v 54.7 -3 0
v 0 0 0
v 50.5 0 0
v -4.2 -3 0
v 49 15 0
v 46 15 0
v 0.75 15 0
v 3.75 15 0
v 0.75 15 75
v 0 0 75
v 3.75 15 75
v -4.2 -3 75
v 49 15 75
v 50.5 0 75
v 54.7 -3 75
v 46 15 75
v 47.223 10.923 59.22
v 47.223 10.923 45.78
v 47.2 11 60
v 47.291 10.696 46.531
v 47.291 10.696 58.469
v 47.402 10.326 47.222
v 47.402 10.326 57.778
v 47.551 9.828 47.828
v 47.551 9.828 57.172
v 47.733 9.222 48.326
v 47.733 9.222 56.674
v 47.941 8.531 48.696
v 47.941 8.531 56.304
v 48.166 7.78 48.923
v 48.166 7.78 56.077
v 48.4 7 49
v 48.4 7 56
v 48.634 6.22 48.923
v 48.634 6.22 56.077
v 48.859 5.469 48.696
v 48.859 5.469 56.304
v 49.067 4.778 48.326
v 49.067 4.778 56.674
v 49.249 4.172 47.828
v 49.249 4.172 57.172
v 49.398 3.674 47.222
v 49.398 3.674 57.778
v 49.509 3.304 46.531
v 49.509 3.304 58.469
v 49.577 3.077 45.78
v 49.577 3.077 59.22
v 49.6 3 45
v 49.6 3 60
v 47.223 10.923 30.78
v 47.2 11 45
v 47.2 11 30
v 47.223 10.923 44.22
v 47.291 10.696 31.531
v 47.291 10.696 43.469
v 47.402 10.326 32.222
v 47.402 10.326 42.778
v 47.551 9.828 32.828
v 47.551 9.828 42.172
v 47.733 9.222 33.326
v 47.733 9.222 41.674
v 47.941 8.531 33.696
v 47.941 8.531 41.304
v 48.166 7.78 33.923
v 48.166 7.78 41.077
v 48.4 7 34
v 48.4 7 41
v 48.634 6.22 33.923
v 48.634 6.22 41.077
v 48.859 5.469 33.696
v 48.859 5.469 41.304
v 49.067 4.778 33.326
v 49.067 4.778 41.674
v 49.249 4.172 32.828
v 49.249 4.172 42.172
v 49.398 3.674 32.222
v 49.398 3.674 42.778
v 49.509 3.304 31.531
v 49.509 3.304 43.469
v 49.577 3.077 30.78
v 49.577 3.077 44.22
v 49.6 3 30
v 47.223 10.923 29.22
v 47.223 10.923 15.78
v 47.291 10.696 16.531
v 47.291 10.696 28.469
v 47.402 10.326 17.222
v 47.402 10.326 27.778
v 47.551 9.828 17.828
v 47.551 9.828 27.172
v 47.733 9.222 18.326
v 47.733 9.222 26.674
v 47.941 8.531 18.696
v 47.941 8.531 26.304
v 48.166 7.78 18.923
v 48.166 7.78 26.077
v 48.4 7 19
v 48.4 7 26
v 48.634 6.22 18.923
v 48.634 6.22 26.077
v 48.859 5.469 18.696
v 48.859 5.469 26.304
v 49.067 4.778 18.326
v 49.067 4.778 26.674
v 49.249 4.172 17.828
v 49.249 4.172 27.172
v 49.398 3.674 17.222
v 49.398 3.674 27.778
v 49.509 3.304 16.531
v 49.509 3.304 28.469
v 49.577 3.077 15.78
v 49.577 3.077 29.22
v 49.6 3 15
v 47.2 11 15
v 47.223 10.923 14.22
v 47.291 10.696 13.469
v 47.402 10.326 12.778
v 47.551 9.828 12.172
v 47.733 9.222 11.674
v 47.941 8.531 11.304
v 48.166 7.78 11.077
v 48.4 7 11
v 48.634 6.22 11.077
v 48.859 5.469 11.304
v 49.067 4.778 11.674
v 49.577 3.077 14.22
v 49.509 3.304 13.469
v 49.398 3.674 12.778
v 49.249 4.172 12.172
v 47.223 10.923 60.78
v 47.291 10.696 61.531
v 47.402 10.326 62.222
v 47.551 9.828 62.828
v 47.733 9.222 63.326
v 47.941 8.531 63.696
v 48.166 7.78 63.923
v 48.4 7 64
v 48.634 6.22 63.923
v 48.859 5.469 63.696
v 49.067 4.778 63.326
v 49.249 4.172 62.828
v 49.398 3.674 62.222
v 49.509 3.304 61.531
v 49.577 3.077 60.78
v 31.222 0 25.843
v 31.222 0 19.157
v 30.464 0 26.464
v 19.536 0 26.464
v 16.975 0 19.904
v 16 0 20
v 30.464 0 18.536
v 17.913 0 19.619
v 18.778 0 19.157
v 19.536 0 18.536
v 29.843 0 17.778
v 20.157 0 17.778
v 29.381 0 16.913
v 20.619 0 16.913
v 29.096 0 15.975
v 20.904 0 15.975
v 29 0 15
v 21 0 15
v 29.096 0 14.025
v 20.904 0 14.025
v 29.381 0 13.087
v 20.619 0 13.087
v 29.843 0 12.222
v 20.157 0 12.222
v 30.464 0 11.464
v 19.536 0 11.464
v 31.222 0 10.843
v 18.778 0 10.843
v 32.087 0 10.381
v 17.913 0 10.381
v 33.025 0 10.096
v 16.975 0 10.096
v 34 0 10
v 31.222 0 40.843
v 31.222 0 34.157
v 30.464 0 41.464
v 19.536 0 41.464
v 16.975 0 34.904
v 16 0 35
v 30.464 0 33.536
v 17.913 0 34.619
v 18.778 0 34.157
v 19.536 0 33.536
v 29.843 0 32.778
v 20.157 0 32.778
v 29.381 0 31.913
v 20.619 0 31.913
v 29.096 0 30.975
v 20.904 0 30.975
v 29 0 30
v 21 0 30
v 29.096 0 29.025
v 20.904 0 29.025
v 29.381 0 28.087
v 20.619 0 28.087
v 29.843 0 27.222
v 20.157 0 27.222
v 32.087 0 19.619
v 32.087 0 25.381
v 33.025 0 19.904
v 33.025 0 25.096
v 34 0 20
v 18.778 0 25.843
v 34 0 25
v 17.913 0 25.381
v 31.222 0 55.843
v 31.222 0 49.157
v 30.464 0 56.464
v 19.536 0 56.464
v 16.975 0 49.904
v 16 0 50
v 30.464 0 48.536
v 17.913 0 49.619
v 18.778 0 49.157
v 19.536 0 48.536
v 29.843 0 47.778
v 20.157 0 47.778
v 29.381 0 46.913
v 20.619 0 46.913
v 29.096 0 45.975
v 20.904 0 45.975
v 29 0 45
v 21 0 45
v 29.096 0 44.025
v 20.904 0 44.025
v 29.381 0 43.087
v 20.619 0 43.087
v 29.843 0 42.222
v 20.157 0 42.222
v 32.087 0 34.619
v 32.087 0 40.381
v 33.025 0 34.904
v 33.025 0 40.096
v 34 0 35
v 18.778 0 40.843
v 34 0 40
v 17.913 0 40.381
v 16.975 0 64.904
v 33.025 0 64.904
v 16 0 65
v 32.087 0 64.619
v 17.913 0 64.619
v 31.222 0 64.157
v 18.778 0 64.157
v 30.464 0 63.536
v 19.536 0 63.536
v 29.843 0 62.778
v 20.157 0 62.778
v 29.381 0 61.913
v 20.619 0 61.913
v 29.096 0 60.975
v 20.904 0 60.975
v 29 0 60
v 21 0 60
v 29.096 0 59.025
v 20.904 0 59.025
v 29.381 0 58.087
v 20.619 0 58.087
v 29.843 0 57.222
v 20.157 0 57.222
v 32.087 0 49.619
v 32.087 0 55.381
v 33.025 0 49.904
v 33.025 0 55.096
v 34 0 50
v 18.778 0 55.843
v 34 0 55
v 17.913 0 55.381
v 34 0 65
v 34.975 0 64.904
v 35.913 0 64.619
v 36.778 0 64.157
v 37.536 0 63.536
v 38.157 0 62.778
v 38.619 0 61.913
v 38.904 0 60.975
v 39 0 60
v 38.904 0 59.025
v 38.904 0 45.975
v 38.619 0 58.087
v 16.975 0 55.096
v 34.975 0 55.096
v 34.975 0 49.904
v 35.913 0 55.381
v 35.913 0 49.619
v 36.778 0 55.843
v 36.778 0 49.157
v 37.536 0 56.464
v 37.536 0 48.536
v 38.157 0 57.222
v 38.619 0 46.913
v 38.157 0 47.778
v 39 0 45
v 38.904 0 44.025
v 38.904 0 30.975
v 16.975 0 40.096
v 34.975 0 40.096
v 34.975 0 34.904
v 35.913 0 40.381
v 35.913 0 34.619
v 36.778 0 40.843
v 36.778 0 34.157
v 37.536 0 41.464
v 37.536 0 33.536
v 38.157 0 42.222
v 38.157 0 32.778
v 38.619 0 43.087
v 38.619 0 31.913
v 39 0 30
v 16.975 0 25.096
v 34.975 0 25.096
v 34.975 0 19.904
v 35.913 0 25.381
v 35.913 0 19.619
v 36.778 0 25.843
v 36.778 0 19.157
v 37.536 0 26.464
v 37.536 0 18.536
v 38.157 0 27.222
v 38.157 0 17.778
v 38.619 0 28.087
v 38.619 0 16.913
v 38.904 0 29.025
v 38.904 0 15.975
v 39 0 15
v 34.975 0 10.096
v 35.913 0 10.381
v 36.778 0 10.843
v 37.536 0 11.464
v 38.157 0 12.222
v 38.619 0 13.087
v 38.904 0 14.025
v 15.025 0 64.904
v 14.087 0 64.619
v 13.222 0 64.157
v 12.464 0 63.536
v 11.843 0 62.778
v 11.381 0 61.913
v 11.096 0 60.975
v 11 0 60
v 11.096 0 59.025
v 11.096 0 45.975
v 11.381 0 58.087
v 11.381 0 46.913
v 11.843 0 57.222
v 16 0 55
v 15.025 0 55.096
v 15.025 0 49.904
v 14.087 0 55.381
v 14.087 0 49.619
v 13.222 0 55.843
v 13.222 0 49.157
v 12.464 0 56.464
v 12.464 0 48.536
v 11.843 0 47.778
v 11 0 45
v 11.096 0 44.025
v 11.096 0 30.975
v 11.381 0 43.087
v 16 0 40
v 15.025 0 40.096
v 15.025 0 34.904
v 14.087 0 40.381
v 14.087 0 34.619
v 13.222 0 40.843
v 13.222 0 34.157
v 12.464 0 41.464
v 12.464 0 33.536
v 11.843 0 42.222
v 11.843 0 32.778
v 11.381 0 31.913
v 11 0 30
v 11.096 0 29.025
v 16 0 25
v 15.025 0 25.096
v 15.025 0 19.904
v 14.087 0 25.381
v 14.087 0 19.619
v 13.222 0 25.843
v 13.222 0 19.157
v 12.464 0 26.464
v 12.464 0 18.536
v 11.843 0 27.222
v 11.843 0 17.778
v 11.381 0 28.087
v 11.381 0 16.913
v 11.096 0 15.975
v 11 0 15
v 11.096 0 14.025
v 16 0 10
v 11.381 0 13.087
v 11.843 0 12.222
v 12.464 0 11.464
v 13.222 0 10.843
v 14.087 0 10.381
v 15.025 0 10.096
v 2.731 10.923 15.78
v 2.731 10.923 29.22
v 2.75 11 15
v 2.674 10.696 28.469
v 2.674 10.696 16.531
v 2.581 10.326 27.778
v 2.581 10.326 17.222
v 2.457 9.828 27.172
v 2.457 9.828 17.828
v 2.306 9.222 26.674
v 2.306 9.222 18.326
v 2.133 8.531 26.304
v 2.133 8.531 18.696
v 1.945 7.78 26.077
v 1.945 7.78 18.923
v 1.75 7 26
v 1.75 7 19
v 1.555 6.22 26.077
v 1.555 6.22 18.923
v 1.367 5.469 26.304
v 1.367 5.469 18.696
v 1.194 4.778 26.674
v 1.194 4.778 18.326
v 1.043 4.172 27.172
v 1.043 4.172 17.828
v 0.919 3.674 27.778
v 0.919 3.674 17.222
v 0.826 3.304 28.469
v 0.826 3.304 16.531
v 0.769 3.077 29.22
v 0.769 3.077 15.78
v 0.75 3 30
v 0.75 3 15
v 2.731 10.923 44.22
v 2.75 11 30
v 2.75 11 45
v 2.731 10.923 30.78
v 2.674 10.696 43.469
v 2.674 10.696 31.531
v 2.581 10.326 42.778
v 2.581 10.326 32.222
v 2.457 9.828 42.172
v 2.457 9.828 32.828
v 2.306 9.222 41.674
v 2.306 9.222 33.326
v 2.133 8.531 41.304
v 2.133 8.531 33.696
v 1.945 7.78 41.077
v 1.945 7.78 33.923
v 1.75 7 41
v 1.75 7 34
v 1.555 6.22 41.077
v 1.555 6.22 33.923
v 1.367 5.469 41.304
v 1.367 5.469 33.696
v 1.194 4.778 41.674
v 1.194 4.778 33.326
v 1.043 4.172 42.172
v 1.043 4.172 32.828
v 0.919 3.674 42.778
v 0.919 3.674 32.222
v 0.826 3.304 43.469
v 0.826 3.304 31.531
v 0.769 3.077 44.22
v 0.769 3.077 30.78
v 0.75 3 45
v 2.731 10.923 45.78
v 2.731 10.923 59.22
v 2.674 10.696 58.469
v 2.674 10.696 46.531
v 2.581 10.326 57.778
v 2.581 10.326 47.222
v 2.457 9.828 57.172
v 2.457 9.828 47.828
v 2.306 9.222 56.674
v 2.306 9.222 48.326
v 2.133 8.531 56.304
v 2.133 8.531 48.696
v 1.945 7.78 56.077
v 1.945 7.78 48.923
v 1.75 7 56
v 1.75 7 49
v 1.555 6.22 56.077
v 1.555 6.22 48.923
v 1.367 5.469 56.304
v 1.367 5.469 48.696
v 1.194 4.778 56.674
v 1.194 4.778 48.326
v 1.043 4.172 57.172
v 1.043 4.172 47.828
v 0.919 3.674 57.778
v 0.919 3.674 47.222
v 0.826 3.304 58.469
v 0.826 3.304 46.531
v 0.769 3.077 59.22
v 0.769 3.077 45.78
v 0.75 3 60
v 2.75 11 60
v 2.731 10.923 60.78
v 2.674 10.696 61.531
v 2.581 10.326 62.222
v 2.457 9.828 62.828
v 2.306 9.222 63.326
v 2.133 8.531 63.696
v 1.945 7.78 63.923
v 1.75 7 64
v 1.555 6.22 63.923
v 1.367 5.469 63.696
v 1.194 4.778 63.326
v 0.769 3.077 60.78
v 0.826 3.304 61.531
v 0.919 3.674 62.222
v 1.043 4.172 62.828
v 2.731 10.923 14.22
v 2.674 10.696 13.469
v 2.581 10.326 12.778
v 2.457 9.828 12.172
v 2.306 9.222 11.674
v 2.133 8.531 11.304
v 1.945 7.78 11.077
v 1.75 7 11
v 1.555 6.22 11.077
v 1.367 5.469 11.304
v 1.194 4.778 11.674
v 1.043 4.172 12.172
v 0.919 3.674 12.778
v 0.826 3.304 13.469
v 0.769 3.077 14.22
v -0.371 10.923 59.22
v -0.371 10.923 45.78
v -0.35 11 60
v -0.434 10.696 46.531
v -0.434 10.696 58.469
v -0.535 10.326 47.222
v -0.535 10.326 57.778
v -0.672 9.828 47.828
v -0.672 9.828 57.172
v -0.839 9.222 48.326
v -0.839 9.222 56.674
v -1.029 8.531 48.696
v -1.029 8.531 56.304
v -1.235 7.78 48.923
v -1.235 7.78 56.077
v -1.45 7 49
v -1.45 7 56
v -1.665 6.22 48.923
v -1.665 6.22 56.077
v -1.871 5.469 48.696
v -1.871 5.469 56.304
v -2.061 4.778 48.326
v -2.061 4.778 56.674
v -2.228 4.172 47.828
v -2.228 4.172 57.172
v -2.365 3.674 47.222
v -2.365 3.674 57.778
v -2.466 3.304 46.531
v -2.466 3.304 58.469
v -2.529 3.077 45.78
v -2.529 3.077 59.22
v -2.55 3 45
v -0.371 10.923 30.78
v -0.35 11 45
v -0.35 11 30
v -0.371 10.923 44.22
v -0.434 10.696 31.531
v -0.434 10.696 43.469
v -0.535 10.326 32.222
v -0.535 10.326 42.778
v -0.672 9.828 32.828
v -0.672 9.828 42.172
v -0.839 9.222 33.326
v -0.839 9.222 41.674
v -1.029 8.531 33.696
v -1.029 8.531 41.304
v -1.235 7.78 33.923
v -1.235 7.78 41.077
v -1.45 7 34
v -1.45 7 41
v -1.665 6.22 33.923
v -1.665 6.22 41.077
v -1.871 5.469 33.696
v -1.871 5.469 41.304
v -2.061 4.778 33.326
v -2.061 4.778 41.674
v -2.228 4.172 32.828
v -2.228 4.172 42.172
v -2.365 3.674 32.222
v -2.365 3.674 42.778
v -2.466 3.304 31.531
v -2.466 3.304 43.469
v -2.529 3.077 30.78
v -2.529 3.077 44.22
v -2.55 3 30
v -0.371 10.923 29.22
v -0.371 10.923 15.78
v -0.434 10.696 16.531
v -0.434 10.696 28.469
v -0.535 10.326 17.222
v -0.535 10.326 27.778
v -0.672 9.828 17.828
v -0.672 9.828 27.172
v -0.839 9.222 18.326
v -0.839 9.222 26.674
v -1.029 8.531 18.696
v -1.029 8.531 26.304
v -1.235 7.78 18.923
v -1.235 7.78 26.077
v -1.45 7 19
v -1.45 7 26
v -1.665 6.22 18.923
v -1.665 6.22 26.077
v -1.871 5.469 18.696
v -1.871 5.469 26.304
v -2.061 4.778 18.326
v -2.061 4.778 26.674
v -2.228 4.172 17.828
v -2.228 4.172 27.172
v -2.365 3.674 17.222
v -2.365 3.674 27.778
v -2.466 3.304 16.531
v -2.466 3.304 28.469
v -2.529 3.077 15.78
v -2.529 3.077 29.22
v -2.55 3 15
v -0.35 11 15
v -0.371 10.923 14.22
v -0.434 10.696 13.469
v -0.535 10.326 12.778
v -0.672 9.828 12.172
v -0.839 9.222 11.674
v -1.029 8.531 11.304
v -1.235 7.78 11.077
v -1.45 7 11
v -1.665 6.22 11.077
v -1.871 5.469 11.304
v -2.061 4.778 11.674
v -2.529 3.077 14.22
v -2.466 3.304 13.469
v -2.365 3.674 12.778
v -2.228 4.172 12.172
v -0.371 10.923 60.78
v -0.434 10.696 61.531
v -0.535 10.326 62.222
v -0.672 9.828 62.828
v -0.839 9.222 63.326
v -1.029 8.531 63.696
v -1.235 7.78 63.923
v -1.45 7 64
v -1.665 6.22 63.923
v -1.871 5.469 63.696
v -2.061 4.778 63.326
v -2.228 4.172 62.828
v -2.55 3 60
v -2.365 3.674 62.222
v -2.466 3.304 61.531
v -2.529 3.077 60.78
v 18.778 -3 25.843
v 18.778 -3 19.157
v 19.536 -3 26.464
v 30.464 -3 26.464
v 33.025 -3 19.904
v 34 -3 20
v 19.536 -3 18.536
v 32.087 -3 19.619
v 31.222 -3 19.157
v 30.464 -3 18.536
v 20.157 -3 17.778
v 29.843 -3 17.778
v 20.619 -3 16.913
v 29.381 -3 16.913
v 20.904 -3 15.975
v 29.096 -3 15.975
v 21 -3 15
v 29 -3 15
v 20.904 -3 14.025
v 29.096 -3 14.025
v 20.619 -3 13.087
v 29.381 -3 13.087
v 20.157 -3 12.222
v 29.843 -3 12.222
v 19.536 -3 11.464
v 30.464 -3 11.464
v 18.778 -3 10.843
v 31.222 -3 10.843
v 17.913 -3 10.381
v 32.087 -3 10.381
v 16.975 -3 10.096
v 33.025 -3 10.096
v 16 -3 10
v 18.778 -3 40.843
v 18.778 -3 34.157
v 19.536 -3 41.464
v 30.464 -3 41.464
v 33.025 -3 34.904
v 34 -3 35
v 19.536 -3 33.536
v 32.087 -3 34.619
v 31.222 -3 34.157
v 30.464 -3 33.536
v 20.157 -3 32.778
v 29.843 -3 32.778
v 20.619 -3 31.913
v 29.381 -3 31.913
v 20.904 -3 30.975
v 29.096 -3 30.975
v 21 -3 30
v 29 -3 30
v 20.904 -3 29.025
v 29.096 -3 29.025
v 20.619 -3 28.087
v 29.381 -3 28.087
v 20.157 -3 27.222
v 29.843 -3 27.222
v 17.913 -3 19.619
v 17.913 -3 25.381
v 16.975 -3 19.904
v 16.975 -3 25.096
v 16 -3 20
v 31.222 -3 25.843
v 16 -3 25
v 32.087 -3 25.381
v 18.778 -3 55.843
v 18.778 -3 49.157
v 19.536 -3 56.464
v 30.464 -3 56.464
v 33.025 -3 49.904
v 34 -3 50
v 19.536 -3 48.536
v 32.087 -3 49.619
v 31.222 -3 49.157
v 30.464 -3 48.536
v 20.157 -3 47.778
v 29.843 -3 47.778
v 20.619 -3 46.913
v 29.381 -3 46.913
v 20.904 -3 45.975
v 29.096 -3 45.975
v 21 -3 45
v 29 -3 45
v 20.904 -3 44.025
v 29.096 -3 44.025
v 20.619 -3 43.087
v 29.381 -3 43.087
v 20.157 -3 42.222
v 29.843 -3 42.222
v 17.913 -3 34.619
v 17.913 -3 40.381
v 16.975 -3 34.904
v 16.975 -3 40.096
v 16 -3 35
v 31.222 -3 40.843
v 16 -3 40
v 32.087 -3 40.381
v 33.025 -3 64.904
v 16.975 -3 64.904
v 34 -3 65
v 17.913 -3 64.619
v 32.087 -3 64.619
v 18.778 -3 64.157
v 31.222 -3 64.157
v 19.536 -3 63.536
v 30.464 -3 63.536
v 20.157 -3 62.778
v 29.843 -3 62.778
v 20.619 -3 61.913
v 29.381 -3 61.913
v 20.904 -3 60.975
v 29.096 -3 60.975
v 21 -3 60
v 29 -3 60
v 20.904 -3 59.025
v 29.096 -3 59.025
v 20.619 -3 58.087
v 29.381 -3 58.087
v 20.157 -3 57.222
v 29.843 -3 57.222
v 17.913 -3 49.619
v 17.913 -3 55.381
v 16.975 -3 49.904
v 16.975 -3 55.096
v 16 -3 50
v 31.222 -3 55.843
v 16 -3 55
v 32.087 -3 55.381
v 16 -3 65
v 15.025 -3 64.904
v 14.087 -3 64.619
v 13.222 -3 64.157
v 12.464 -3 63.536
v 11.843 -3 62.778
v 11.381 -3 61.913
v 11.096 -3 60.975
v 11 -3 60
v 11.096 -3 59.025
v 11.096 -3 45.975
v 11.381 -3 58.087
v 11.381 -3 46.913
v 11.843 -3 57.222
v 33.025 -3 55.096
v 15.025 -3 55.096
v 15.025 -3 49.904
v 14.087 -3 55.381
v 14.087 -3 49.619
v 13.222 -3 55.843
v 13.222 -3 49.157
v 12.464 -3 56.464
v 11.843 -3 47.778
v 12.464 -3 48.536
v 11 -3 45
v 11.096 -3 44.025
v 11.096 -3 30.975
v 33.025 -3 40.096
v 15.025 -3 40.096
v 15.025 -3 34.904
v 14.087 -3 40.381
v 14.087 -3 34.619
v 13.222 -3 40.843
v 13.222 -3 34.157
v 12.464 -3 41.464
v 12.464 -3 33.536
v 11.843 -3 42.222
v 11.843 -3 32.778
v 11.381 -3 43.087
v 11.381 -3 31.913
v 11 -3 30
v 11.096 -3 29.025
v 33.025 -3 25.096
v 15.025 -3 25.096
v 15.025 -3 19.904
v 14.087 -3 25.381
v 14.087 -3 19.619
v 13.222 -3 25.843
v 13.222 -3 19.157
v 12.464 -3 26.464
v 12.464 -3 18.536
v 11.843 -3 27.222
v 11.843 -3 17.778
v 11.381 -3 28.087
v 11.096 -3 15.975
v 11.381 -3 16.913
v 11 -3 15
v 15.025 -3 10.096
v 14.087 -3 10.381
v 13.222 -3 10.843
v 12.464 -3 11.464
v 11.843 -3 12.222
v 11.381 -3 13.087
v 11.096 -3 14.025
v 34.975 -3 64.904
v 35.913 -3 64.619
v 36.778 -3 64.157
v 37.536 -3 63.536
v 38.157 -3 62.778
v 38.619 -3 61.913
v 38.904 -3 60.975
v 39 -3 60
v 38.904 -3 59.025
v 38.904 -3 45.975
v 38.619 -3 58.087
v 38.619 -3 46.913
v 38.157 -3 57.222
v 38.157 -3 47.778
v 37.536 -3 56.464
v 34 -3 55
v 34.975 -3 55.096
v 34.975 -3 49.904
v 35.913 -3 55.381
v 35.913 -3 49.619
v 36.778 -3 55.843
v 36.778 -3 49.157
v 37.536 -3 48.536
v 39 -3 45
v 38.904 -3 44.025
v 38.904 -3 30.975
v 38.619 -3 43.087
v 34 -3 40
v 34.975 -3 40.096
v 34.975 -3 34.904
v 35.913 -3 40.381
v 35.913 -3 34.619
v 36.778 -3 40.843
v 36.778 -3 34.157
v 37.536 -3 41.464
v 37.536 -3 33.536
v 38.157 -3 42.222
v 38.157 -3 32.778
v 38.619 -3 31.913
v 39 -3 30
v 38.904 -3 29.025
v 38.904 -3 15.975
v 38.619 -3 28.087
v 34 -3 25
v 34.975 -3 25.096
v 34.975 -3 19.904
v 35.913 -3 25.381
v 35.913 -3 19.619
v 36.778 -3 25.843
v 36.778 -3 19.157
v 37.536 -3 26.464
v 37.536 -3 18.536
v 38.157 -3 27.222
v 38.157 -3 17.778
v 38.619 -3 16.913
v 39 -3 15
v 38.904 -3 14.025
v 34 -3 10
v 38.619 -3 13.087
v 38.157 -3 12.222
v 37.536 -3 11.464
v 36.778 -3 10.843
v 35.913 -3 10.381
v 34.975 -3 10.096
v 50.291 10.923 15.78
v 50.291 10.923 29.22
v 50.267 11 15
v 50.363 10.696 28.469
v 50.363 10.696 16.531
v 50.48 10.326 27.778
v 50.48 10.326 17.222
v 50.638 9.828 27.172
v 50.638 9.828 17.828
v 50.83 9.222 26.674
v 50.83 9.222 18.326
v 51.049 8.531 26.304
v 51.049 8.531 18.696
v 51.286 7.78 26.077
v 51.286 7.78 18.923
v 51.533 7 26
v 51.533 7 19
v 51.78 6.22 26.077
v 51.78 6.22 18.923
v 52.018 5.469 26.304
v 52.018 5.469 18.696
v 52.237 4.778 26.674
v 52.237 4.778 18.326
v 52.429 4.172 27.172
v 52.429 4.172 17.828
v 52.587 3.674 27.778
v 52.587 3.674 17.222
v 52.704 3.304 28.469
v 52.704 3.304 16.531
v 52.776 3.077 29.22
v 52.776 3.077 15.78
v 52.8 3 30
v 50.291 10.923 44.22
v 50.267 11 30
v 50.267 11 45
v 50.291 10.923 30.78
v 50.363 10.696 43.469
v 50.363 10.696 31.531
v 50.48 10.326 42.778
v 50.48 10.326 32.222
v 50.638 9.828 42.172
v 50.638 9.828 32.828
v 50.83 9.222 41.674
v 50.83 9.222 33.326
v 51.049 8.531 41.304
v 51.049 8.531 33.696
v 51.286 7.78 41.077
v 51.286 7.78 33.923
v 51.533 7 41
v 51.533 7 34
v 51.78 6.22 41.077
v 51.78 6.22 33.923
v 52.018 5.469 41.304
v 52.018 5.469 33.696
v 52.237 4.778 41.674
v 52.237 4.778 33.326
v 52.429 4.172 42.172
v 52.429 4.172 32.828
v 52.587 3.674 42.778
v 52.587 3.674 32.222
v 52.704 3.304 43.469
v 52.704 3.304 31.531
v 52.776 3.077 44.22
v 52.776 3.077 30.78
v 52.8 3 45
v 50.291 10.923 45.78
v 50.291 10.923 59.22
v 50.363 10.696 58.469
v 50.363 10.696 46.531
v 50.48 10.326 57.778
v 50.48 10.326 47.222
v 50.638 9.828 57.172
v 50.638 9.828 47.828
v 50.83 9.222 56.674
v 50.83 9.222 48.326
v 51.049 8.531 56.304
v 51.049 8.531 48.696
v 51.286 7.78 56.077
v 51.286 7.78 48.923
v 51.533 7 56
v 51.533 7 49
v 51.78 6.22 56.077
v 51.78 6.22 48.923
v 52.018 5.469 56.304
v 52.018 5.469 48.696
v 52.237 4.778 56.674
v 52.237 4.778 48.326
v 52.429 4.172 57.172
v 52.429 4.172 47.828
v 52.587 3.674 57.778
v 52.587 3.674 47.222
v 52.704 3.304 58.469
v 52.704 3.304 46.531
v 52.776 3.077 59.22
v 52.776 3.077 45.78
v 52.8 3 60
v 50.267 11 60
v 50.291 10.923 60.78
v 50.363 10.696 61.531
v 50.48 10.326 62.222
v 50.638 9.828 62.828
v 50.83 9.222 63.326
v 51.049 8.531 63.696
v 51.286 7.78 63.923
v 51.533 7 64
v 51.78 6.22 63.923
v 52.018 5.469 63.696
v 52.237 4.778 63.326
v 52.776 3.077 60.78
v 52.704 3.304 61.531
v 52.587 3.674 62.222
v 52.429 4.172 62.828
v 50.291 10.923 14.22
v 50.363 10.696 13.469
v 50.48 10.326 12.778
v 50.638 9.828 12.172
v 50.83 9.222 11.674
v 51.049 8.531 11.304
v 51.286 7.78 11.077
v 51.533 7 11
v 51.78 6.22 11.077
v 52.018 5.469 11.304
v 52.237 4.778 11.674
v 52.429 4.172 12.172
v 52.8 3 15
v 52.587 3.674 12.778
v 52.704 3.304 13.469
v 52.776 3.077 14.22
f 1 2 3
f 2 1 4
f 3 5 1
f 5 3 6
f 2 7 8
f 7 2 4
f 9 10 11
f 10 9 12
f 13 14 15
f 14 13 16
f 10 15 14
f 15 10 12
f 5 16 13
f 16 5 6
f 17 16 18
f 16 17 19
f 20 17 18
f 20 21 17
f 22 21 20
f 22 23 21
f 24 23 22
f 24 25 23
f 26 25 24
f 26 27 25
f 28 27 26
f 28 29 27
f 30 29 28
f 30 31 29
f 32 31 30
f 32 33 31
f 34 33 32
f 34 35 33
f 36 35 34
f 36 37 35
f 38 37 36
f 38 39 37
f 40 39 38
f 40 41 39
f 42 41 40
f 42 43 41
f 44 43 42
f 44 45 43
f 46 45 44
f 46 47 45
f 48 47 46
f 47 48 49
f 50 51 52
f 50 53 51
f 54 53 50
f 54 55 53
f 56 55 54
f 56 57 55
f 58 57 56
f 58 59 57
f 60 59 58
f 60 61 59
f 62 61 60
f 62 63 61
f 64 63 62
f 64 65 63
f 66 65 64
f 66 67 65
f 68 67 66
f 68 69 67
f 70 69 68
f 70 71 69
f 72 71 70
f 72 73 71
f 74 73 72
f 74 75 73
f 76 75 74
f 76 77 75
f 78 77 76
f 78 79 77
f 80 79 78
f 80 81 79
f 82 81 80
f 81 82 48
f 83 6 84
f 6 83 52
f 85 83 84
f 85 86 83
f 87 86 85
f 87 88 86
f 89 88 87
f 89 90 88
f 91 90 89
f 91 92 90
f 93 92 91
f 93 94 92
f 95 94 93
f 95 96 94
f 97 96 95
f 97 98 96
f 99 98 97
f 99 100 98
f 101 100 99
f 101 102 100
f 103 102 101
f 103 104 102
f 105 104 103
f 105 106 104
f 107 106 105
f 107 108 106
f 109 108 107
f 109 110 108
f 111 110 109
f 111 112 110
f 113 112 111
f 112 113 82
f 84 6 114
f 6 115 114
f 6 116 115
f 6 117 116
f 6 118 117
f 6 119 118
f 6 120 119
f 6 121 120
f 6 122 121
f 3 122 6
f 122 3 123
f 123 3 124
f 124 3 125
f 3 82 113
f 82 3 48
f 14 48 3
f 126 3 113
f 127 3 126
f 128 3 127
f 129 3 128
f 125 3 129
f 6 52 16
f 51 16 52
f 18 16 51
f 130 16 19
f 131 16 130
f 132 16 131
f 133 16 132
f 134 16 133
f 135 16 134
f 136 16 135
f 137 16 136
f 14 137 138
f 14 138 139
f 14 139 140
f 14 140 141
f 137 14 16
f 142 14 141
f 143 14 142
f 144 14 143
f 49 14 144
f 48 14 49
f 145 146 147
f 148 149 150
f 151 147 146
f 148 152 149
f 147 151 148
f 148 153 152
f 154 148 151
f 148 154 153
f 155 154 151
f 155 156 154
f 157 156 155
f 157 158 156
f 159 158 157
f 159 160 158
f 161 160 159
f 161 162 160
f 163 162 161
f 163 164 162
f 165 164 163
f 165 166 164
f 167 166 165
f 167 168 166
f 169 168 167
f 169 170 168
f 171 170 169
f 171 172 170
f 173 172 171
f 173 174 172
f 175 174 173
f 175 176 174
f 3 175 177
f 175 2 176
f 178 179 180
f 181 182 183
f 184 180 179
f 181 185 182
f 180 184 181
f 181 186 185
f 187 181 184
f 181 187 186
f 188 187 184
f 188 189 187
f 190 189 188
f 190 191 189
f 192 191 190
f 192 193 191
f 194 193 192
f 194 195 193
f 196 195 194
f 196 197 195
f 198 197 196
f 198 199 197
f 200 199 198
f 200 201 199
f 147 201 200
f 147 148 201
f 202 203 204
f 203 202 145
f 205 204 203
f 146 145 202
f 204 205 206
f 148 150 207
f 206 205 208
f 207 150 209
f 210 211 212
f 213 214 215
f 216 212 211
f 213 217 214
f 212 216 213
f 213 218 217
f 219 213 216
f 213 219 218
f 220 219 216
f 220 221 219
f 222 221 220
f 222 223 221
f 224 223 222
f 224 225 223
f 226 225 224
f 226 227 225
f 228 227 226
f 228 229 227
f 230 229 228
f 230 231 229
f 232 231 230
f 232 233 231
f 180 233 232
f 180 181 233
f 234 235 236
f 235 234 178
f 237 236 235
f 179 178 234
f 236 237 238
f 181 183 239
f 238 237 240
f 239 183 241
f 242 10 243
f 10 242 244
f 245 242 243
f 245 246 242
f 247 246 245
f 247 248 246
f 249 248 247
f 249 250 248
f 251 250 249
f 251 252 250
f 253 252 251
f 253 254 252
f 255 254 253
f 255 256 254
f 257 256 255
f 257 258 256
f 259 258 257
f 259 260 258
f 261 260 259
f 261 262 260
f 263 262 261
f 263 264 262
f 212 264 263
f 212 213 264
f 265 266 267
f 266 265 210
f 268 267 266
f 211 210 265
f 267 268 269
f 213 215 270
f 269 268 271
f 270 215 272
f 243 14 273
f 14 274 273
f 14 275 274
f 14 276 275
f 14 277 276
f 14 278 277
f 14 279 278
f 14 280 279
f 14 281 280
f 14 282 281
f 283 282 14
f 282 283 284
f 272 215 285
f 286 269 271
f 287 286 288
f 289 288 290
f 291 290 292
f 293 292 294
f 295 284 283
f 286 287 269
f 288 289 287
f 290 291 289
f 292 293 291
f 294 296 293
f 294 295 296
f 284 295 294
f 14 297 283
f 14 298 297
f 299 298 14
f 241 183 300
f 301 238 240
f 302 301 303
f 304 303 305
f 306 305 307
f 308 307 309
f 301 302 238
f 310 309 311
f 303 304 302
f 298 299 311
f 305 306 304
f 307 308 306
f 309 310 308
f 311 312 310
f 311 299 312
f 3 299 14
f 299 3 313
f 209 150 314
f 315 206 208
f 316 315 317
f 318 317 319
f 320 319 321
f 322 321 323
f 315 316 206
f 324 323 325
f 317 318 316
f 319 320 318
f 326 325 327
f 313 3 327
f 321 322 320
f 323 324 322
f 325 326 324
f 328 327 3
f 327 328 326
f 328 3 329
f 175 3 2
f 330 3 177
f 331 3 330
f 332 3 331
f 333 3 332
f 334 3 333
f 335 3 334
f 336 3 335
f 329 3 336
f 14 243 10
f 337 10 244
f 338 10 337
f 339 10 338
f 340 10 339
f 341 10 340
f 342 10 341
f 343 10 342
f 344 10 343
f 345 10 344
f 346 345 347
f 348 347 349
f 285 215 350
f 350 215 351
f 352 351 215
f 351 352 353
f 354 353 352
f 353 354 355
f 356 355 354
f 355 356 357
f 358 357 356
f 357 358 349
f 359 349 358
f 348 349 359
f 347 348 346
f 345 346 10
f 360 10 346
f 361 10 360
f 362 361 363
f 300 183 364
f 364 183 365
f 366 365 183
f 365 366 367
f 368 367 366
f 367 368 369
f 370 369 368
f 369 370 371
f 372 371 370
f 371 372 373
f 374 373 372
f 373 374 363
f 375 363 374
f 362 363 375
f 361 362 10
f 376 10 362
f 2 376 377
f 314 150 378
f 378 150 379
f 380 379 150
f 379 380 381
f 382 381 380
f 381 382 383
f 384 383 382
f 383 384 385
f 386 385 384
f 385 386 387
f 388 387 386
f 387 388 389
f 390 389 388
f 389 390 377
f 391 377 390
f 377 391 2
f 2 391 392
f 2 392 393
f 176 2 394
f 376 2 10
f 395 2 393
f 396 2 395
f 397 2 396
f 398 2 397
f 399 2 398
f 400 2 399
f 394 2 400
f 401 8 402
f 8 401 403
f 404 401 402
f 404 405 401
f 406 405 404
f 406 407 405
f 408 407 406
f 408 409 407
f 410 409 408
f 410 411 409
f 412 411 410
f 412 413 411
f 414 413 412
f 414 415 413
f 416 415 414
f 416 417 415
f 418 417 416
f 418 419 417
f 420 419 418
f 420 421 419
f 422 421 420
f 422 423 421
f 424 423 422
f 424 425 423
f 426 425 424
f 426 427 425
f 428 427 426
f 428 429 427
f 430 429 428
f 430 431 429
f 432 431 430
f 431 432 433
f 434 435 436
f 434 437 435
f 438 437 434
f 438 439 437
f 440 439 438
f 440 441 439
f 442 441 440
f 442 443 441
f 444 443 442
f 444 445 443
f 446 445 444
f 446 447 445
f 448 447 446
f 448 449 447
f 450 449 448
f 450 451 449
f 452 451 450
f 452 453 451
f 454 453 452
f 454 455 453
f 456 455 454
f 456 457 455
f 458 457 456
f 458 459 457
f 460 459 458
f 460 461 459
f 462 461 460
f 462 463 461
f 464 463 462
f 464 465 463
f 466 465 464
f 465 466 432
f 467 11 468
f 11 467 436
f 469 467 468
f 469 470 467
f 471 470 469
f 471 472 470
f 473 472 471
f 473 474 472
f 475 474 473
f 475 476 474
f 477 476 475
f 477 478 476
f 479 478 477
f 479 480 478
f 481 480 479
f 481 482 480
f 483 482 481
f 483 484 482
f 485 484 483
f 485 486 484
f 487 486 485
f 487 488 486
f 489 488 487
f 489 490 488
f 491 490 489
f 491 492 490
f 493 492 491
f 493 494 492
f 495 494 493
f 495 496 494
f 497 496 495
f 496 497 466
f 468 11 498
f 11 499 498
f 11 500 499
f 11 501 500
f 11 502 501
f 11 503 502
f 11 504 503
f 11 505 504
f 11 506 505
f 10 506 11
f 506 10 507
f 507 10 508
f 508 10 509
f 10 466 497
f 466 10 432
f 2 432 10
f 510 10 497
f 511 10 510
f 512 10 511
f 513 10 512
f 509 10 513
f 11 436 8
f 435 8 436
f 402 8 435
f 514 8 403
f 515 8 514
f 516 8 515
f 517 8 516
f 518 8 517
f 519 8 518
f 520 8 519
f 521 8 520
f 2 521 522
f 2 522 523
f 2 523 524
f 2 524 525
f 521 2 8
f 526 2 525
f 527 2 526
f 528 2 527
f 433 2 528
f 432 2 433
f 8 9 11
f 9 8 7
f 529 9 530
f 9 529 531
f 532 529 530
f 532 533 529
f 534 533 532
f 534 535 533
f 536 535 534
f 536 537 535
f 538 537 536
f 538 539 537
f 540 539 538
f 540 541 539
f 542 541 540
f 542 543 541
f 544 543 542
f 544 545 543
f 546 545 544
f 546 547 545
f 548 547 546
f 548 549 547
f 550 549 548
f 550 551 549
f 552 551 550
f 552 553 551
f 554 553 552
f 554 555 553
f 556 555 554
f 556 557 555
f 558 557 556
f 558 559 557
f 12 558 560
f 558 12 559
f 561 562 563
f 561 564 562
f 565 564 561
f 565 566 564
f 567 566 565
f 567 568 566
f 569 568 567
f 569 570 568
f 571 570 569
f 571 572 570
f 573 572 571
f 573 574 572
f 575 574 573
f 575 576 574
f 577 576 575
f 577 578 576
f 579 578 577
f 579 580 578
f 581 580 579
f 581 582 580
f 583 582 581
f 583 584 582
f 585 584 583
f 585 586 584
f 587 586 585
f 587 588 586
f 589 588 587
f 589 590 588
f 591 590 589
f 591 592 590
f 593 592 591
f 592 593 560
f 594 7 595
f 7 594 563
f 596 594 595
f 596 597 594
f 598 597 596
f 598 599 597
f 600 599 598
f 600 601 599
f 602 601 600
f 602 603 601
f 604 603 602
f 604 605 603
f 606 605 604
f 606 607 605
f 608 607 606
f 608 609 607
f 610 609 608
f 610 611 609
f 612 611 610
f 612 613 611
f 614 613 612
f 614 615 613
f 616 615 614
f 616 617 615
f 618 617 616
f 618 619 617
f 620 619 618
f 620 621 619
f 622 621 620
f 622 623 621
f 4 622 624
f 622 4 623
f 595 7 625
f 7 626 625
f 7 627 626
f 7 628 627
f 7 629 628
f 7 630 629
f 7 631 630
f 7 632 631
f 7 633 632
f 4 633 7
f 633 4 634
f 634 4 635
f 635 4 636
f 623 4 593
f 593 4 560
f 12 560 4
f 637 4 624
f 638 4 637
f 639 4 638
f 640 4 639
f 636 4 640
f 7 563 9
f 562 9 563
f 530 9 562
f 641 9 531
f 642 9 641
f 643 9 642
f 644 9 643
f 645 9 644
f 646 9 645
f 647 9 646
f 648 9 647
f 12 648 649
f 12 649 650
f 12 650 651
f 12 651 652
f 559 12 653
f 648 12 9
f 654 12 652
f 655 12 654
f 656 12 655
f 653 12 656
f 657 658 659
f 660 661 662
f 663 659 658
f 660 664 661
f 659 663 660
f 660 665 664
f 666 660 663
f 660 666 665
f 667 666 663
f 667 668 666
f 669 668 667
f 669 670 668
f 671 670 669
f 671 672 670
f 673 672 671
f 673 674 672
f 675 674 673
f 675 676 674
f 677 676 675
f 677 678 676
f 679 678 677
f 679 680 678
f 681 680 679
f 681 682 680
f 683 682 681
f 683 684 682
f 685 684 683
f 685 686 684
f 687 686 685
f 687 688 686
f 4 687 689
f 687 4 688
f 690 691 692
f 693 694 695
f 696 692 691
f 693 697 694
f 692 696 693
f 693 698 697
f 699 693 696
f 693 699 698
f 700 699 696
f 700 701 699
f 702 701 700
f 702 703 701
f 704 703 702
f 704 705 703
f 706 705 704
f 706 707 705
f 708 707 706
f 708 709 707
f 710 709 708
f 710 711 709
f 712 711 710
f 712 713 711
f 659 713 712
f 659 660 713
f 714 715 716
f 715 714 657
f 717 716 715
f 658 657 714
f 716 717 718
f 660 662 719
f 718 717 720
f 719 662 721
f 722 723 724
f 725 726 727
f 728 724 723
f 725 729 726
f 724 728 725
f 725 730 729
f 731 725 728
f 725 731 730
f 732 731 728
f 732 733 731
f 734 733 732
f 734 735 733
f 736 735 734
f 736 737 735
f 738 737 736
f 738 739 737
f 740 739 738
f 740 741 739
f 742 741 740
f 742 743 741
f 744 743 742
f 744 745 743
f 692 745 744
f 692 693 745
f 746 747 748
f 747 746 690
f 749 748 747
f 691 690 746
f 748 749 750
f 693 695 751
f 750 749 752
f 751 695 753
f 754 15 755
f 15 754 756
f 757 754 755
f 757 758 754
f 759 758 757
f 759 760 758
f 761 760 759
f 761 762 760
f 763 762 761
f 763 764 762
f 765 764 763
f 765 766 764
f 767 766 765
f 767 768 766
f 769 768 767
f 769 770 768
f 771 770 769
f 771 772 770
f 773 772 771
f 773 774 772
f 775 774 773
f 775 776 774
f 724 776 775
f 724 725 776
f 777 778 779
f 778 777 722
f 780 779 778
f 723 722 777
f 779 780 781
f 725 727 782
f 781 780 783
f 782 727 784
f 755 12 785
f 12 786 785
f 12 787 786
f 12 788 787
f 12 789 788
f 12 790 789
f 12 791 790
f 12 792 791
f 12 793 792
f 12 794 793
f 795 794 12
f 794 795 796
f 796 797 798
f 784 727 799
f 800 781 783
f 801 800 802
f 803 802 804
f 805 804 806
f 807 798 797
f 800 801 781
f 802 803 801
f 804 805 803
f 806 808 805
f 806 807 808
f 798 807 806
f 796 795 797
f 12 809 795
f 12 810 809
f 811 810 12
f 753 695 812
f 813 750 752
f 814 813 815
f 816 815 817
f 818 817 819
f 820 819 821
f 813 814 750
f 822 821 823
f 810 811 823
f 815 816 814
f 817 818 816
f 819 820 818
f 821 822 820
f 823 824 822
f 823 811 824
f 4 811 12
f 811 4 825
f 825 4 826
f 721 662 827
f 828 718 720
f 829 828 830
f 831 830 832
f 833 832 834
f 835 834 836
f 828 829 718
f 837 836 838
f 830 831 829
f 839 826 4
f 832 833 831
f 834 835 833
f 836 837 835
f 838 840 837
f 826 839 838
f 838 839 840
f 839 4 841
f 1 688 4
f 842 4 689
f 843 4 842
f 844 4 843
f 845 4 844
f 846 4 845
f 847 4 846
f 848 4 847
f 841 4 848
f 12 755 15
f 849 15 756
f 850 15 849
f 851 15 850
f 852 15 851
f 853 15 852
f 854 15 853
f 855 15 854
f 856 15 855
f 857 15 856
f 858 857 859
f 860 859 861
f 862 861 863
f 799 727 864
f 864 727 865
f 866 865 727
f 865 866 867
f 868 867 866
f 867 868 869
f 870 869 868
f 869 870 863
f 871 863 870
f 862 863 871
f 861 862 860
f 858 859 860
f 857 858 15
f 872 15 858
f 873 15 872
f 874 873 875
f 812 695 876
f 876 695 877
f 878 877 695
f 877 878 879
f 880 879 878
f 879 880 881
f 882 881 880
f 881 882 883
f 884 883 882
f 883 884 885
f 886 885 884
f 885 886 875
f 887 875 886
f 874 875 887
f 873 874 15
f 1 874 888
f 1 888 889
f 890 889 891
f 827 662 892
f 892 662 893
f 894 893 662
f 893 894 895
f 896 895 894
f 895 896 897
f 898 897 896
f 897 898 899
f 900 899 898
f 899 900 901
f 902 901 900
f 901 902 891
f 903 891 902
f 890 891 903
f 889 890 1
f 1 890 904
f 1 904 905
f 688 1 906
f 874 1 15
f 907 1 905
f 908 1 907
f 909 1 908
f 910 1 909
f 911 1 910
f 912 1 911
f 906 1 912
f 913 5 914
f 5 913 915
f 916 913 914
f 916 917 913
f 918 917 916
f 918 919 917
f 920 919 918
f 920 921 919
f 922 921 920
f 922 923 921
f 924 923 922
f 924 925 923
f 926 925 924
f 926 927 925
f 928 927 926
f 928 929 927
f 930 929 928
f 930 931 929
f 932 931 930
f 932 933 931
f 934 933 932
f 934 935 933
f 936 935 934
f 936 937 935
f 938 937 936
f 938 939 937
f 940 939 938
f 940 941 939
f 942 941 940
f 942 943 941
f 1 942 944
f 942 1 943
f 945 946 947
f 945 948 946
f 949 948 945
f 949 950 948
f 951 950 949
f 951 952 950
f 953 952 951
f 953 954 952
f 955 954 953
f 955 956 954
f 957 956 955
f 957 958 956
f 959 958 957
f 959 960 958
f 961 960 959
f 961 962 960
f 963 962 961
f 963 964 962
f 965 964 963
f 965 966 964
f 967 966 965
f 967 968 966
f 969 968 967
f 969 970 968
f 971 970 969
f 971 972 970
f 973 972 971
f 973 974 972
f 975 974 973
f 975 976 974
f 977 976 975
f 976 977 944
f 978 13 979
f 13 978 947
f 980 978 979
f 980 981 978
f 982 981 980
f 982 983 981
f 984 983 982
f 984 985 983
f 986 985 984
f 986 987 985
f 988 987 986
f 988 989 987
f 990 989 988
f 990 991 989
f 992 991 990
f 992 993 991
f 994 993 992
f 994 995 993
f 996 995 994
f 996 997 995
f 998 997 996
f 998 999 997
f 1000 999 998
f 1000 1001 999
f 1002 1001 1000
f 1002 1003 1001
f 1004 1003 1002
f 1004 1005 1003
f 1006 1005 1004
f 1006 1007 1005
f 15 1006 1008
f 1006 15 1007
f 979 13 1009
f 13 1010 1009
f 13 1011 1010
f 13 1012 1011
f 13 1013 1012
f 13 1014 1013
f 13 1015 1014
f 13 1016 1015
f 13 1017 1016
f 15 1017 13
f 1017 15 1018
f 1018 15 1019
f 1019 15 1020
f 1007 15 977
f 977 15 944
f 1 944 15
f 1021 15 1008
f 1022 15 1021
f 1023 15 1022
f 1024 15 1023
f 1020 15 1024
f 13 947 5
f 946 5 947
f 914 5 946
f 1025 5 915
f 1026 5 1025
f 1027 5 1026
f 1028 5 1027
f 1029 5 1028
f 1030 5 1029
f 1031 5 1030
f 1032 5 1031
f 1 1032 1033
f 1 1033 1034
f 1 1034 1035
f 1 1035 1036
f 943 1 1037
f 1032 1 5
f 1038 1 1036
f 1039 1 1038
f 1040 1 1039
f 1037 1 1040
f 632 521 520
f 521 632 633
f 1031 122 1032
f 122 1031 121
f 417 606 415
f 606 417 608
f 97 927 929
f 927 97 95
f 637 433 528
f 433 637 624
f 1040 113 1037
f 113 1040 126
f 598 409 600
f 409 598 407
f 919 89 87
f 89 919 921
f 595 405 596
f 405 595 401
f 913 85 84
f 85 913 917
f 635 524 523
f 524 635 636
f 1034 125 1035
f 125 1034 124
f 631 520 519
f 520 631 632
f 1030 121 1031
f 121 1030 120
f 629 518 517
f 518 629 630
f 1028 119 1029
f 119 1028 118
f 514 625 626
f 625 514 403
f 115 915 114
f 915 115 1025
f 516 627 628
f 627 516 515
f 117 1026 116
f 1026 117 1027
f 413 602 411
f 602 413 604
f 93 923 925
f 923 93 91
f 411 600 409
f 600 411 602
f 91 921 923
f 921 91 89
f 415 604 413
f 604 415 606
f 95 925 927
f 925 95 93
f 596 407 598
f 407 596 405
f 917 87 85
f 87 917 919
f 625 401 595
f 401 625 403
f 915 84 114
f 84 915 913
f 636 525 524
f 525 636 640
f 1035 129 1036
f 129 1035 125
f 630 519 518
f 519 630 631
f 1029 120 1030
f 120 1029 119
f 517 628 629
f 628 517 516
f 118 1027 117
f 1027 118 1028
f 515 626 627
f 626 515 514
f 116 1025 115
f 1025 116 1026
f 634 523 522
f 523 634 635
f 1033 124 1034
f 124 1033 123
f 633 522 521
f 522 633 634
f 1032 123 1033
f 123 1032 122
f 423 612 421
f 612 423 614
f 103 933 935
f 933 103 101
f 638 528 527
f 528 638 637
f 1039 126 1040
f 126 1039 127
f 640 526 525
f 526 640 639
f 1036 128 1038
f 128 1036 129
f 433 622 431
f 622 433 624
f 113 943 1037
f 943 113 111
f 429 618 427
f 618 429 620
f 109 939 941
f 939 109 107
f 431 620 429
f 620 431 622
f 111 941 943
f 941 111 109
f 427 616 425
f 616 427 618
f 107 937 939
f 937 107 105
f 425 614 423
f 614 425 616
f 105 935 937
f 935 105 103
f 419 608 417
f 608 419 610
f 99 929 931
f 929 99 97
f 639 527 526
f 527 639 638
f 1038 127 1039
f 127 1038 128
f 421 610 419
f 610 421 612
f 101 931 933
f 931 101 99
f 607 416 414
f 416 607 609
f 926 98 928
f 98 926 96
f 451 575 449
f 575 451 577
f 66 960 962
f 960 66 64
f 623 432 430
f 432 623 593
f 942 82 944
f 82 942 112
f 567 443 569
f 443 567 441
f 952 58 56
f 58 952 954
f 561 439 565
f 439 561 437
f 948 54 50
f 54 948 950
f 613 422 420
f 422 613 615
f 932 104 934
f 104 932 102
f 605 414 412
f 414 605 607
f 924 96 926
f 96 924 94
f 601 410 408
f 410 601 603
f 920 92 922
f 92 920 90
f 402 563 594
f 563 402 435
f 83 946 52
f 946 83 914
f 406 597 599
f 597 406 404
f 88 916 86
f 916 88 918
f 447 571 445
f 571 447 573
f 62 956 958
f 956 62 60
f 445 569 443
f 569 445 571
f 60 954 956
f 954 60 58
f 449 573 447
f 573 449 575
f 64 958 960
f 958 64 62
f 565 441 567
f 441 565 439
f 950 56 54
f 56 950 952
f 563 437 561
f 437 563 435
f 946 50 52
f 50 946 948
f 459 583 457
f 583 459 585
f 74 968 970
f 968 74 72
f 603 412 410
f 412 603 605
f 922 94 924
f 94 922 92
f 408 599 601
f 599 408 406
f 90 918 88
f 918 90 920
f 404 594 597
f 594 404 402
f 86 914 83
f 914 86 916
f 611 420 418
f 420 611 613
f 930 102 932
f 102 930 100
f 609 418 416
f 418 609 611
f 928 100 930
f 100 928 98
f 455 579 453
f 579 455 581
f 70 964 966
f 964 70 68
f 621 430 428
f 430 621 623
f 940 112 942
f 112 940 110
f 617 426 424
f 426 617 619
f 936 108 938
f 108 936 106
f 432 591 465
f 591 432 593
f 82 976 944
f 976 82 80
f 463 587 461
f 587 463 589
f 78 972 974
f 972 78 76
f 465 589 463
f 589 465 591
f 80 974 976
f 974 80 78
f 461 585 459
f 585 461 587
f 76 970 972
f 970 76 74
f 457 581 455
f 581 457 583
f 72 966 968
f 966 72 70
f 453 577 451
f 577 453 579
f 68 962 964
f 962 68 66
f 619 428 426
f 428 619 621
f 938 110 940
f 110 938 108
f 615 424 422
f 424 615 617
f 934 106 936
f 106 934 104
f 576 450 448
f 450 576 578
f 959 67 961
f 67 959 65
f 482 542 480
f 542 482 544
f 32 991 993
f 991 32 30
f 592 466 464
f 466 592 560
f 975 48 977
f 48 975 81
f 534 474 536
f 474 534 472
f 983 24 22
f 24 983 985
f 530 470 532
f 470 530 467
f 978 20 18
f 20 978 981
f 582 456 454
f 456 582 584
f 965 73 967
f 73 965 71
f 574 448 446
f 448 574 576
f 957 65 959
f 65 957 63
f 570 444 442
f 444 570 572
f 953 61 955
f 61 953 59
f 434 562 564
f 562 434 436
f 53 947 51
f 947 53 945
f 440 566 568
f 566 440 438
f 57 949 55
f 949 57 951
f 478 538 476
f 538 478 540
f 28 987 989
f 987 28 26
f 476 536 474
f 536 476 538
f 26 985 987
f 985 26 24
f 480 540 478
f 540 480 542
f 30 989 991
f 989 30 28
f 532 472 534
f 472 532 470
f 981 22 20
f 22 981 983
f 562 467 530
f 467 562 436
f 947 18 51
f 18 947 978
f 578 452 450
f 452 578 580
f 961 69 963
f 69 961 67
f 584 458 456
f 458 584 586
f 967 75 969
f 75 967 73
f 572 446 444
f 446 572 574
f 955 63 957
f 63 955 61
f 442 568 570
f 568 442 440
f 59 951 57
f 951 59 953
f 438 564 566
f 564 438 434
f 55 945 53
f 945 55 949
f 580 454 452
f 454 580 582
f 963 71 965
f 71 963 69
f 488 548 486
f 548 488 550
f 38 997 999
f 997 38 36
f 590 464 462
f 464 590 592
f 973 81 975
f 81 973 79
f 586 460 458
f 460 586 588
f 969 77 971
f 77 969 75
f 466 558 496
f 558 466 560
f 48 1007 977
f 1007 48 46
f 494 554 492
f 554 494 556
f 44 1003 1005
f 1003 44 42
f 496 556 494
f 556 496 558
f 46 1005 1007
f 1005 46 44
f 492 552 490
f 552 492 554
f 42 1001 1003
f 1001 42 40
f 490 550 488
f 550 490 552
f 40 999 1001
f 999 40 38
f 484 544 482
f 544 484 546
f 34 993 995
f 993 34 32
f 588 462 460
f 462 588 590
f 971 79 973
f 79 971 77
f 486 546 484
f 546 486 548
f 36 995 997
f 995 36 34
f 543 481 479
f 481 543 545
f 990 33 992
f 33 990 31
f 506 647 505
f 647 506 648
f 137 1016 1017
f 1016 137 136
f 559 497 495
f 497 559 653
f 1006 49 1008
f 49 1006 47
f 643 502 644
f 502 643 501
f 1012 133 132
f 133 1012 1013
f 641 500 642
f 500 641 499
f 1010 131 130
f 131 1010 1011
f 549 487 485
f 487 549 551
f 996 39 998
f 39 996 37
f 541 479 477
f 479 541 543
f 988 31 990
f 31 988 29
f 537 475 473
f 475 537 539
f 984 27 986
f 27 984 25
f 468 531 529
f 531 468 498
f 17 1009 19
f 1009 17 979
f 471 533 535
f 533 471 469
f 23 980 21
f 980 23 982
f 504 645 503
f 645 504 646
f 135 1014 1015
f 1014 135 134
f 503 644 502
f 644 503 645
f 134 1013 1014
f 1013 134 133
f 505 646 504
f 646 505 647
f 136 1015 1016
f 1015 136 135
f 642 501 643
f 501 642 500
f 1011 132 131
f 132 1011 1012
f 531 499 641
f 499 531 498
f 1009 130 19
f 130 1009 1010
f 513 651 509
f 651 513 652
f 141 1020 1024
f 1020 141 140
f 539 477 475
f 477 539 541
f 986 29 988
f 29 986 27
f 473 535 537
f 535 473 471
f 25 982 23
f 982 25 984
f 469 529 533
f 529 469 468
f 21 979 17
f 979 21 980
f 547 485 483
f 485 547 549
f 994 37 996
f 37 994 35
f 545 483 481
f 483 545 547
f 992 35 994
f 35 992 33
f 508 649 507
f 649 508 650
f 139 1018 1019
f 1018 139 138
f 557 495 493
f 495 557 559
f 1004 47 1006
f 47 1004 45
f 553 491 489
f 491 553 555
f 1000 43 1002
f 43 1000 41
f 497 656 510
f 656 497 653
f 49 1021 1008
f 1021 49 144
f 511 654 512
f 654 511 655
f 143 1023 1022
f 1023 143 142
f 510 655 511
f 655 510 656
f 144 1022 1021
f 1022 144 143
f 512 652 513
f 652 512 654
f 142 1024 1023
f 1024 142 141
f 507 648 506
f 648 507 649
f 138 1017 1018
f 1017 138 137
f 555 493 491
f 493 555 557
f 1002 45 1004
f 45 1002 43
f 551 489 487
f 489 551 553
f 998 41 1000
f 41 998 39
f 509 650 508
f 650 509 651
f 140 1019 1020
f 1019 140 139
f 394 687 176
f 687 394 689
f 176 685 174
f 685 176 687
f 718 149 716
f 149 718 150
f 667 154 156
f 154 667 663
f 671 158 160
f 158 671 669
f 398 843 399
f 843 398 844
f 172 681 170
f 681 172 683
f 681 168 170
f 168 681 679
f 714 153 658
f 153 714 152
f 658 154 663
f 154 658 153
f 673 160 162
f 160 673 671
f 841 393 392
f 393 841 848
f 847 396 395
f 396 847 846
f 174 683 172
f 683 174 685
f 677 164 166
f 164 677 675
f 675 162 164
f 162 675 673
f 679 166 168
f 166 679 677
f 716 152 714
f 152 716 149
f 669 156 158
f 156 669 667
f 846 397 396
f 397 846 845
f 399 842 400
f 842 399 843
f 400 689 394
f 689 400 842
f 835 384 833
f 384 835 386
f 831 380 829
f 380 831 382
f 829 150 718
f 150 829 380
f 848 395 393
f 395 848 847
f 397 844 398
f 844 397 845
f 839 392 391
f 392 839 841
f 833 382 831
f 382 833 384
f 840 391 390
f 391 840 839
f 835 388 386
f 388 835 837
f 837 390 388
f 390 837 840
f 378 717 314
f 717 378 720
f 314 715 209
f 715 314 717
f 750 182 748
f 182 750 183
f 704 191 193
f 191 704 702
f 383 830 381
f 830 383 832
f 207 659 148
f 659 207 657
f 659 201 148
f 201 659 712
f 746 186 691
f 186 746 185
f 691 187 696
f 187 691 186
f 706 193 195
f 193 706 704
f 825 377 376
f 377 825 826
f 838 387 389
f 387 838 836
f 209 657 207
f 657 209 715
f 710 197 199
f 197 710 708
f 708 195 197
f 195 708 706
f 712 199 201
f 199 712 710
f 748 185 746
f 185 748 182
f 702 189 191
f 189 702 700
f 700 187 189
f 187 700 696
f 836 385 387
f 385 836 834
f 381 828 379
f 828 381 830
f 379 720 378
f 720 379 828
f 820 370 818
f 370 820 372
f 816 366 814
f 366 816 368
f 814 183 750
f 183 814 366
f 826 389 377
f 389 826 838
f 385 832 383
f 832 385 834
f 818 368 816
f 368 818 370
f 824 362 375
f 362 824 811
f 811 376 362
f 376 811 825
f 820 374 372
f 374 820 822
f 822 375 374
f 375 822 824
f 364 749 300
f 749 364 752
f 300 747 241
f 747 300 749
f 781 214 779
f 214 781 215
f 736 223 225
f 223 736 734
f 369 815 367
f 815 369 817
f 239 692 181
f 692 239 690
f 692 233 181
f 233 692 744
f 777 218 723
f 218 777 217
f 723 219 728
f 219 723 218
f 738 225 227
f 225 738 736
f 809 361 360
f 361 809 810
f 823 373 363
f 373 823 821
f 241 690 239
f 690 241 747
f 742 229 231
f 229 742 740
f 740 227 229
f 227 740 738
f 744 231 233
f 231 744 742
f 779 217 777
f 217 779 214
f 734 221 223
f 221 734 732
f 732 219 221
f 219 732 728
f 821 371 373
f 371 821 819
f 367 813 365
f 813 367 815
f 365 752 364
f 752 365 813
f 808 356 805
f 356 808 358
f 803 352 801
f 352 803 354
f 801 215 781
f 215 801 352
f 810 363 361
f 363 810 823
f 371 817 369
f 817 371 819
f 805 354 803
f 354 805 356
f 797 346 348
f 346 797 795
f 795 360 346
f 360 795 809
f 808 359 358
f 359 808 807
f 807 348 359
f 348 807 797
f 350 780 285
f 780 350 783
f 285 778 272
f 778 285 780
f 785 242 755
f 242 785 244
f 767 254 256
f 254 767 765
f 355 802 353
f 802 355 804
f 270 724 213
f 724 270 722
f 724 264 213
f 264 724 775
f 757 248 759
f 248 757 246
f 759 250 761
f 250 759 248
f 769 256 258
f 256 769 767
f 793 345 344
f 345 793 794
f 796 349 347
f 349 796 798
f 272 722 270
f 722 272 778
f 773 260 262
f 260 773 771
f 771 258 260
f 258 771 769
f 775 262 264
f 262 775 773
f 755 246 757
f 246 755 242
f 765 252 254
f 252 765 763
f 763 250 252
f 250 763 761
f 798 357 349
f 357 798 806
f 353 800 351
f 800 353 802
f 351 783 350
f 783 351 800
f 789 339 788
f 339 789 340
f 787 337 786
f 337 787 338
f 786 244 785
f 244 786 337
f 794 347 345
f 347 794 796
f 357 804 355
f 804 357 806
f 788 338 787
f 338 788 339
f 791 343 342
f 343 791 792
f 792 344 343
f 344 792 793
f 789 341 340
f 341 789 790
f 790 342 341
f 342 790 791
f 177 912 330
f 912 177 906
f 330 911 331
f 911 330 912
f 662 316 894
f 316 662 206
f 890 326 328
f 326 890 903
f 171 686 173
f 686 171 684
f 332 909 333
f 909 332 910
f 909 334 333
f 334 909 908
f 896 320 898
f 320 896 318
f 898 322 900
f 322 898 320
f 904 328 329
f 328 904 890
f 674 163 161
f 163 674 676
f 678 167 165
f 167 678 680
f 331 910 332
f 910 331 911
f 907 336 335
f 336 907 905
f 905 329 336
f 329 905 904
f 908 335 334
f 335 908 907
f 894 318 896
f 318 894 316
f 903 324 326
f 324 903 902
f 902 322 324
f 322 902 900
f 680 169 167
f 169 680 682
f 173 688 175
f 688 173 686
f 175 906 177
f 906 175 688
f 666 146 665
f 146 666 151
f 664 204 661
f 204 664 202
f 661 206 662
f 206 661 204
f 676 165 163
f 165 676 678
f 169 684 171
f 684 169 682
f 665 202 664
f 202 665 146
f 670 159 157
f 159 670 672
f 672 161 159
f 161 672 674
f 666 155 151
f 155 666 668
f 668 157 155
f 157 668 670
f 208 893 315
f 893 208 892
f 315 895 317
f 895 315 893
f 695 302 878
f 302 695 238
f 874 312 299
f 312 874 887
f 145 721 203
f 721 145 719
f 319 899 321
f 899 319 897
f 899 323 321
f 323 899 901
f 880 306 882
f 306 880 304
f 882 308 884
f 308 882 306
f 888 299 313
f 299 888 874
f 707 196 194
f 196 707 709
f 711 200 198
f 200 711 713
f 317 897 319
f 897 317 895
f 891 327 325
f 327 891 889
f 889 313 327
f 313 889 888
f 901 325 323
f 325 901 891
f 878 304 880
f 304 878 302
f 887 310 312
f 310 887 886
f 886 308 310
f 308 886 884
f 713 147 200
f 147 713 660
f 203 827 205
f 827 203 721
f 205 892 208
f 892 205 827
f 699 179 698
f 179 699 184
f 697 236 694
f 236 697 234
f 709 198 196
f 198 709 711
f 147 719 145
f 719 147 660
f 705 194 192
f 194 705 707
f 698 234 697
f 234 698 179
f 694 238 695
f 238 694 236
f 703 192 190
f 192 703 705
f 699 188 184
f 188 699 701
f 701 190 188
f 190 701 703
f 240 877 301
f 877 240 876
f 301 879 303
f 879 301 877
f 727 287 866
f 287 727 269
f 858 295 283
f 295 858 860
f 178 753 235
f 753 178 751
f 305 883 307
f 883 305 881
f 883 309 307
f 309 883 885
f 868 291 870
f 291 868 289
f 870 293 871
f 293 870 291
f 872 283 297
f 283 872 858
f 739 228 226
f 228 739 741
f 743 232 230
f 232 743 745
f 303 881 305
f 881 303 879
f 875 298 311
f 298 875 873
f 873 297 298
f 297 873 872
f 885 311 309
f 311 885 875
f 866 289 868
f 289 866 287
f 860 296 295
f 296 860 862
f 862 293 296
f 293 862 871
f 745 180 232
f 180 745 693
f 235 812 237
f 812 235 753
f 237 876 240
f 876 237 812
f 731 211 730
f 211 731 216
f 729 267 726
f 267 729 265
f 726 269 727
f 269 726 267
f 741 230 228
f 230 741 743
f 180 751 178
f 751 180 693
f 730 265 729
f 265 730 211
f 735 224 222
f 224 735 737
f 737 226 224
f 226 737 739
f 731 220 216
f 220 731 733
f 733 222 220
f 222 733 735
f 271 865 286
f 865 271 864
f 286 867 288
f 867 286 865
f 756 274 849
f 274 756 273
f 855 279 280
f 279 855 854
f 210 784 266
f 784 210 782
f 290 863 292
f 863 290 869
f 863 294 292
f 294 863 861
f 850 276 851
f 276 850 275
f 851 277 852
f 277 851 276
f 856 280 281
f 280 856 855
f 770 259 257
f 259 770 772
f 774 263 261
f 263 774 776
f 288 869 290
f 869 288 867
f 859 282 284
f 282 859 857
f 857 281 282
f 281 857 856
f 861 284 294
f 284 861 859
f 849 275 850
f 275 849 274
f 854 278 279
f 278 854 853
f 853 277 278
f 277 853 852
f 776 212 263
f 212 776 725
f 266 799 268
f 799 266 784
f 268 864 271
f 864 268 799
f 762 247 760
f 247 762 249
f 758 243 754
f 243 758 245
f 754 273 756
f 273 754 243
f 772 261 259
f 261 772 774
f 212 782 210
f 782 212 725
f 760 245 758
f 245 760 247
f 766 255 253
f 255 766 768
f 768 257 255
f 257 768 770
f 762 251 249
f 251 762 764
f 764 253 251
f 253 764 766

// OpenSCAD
// Klimmzugstangenschutz

$fn=32;

//43
//cube([75,48.5,15], center=true);
widthBottom=50.5;
widthTop=43;
height=15;
stroke=3;
length=75;

sideHoleR=4;
bottomHoleR=5;

difference() {
  
linear_extrude(length)
polygon(points=[
  [0,0],
  [(widthBottom-widthTop)/2,height],
  [(widthBottom-widthTop)/2-stroke,height],
  [-stroke*1.4,-stroke],
  [widthBottom+stroke*1.4,-stroke],
  [2*stroke+widthTop,height],
  [1*stroke+widthTop,height],
  [widthBottom,0]
  ],convexity=10);
  
  translate([-10,7,15]) rotate([0,90,0]) cylinder(r=sideHoleR,h=100);
  translate([-10,7,30]) rotate([0,90,0]) cylinder(r=sideHoleR,h=100);
  translate([-10,7,45]) rotate([0,90,0]) cylinder(r=sideHoleR,h=100);
  translate([-10,7,60]) rotate([0,90,0]) cylinder(r=sideHoleR,h=100);
  
  translate([16,7,15]) rotate([90,90,0]) cylinder(r=bottomHoleR,h=20);
  translate([16,7,30]) rotate([90,90,0]) cylinder(r=bottomHoleR,h=20);
  translate([16,7,45]) rotate([90,90,0]) cylinder(r=bottomHoleR,h=20);
  translate([16,7,60]) rotate([90,90,0]) cylinder(r=bottomHoleR,h=20);
  
  translate([34,7,15]) rotate([90,90,0]) cylinder(r=bottomHoleR,h=20);
  translate([34,7,30]) rotate([90,90,0]) cylinder(r=bottomHoleR,h=20);
  translate([34,7,45]) rotate([90,90,0]) cylinder(r=bottomHoleR,h=20);
  translate([34,7,60]) rotate([90,90,0]) cylinder(r=bottomHoleR,h=20);
}
